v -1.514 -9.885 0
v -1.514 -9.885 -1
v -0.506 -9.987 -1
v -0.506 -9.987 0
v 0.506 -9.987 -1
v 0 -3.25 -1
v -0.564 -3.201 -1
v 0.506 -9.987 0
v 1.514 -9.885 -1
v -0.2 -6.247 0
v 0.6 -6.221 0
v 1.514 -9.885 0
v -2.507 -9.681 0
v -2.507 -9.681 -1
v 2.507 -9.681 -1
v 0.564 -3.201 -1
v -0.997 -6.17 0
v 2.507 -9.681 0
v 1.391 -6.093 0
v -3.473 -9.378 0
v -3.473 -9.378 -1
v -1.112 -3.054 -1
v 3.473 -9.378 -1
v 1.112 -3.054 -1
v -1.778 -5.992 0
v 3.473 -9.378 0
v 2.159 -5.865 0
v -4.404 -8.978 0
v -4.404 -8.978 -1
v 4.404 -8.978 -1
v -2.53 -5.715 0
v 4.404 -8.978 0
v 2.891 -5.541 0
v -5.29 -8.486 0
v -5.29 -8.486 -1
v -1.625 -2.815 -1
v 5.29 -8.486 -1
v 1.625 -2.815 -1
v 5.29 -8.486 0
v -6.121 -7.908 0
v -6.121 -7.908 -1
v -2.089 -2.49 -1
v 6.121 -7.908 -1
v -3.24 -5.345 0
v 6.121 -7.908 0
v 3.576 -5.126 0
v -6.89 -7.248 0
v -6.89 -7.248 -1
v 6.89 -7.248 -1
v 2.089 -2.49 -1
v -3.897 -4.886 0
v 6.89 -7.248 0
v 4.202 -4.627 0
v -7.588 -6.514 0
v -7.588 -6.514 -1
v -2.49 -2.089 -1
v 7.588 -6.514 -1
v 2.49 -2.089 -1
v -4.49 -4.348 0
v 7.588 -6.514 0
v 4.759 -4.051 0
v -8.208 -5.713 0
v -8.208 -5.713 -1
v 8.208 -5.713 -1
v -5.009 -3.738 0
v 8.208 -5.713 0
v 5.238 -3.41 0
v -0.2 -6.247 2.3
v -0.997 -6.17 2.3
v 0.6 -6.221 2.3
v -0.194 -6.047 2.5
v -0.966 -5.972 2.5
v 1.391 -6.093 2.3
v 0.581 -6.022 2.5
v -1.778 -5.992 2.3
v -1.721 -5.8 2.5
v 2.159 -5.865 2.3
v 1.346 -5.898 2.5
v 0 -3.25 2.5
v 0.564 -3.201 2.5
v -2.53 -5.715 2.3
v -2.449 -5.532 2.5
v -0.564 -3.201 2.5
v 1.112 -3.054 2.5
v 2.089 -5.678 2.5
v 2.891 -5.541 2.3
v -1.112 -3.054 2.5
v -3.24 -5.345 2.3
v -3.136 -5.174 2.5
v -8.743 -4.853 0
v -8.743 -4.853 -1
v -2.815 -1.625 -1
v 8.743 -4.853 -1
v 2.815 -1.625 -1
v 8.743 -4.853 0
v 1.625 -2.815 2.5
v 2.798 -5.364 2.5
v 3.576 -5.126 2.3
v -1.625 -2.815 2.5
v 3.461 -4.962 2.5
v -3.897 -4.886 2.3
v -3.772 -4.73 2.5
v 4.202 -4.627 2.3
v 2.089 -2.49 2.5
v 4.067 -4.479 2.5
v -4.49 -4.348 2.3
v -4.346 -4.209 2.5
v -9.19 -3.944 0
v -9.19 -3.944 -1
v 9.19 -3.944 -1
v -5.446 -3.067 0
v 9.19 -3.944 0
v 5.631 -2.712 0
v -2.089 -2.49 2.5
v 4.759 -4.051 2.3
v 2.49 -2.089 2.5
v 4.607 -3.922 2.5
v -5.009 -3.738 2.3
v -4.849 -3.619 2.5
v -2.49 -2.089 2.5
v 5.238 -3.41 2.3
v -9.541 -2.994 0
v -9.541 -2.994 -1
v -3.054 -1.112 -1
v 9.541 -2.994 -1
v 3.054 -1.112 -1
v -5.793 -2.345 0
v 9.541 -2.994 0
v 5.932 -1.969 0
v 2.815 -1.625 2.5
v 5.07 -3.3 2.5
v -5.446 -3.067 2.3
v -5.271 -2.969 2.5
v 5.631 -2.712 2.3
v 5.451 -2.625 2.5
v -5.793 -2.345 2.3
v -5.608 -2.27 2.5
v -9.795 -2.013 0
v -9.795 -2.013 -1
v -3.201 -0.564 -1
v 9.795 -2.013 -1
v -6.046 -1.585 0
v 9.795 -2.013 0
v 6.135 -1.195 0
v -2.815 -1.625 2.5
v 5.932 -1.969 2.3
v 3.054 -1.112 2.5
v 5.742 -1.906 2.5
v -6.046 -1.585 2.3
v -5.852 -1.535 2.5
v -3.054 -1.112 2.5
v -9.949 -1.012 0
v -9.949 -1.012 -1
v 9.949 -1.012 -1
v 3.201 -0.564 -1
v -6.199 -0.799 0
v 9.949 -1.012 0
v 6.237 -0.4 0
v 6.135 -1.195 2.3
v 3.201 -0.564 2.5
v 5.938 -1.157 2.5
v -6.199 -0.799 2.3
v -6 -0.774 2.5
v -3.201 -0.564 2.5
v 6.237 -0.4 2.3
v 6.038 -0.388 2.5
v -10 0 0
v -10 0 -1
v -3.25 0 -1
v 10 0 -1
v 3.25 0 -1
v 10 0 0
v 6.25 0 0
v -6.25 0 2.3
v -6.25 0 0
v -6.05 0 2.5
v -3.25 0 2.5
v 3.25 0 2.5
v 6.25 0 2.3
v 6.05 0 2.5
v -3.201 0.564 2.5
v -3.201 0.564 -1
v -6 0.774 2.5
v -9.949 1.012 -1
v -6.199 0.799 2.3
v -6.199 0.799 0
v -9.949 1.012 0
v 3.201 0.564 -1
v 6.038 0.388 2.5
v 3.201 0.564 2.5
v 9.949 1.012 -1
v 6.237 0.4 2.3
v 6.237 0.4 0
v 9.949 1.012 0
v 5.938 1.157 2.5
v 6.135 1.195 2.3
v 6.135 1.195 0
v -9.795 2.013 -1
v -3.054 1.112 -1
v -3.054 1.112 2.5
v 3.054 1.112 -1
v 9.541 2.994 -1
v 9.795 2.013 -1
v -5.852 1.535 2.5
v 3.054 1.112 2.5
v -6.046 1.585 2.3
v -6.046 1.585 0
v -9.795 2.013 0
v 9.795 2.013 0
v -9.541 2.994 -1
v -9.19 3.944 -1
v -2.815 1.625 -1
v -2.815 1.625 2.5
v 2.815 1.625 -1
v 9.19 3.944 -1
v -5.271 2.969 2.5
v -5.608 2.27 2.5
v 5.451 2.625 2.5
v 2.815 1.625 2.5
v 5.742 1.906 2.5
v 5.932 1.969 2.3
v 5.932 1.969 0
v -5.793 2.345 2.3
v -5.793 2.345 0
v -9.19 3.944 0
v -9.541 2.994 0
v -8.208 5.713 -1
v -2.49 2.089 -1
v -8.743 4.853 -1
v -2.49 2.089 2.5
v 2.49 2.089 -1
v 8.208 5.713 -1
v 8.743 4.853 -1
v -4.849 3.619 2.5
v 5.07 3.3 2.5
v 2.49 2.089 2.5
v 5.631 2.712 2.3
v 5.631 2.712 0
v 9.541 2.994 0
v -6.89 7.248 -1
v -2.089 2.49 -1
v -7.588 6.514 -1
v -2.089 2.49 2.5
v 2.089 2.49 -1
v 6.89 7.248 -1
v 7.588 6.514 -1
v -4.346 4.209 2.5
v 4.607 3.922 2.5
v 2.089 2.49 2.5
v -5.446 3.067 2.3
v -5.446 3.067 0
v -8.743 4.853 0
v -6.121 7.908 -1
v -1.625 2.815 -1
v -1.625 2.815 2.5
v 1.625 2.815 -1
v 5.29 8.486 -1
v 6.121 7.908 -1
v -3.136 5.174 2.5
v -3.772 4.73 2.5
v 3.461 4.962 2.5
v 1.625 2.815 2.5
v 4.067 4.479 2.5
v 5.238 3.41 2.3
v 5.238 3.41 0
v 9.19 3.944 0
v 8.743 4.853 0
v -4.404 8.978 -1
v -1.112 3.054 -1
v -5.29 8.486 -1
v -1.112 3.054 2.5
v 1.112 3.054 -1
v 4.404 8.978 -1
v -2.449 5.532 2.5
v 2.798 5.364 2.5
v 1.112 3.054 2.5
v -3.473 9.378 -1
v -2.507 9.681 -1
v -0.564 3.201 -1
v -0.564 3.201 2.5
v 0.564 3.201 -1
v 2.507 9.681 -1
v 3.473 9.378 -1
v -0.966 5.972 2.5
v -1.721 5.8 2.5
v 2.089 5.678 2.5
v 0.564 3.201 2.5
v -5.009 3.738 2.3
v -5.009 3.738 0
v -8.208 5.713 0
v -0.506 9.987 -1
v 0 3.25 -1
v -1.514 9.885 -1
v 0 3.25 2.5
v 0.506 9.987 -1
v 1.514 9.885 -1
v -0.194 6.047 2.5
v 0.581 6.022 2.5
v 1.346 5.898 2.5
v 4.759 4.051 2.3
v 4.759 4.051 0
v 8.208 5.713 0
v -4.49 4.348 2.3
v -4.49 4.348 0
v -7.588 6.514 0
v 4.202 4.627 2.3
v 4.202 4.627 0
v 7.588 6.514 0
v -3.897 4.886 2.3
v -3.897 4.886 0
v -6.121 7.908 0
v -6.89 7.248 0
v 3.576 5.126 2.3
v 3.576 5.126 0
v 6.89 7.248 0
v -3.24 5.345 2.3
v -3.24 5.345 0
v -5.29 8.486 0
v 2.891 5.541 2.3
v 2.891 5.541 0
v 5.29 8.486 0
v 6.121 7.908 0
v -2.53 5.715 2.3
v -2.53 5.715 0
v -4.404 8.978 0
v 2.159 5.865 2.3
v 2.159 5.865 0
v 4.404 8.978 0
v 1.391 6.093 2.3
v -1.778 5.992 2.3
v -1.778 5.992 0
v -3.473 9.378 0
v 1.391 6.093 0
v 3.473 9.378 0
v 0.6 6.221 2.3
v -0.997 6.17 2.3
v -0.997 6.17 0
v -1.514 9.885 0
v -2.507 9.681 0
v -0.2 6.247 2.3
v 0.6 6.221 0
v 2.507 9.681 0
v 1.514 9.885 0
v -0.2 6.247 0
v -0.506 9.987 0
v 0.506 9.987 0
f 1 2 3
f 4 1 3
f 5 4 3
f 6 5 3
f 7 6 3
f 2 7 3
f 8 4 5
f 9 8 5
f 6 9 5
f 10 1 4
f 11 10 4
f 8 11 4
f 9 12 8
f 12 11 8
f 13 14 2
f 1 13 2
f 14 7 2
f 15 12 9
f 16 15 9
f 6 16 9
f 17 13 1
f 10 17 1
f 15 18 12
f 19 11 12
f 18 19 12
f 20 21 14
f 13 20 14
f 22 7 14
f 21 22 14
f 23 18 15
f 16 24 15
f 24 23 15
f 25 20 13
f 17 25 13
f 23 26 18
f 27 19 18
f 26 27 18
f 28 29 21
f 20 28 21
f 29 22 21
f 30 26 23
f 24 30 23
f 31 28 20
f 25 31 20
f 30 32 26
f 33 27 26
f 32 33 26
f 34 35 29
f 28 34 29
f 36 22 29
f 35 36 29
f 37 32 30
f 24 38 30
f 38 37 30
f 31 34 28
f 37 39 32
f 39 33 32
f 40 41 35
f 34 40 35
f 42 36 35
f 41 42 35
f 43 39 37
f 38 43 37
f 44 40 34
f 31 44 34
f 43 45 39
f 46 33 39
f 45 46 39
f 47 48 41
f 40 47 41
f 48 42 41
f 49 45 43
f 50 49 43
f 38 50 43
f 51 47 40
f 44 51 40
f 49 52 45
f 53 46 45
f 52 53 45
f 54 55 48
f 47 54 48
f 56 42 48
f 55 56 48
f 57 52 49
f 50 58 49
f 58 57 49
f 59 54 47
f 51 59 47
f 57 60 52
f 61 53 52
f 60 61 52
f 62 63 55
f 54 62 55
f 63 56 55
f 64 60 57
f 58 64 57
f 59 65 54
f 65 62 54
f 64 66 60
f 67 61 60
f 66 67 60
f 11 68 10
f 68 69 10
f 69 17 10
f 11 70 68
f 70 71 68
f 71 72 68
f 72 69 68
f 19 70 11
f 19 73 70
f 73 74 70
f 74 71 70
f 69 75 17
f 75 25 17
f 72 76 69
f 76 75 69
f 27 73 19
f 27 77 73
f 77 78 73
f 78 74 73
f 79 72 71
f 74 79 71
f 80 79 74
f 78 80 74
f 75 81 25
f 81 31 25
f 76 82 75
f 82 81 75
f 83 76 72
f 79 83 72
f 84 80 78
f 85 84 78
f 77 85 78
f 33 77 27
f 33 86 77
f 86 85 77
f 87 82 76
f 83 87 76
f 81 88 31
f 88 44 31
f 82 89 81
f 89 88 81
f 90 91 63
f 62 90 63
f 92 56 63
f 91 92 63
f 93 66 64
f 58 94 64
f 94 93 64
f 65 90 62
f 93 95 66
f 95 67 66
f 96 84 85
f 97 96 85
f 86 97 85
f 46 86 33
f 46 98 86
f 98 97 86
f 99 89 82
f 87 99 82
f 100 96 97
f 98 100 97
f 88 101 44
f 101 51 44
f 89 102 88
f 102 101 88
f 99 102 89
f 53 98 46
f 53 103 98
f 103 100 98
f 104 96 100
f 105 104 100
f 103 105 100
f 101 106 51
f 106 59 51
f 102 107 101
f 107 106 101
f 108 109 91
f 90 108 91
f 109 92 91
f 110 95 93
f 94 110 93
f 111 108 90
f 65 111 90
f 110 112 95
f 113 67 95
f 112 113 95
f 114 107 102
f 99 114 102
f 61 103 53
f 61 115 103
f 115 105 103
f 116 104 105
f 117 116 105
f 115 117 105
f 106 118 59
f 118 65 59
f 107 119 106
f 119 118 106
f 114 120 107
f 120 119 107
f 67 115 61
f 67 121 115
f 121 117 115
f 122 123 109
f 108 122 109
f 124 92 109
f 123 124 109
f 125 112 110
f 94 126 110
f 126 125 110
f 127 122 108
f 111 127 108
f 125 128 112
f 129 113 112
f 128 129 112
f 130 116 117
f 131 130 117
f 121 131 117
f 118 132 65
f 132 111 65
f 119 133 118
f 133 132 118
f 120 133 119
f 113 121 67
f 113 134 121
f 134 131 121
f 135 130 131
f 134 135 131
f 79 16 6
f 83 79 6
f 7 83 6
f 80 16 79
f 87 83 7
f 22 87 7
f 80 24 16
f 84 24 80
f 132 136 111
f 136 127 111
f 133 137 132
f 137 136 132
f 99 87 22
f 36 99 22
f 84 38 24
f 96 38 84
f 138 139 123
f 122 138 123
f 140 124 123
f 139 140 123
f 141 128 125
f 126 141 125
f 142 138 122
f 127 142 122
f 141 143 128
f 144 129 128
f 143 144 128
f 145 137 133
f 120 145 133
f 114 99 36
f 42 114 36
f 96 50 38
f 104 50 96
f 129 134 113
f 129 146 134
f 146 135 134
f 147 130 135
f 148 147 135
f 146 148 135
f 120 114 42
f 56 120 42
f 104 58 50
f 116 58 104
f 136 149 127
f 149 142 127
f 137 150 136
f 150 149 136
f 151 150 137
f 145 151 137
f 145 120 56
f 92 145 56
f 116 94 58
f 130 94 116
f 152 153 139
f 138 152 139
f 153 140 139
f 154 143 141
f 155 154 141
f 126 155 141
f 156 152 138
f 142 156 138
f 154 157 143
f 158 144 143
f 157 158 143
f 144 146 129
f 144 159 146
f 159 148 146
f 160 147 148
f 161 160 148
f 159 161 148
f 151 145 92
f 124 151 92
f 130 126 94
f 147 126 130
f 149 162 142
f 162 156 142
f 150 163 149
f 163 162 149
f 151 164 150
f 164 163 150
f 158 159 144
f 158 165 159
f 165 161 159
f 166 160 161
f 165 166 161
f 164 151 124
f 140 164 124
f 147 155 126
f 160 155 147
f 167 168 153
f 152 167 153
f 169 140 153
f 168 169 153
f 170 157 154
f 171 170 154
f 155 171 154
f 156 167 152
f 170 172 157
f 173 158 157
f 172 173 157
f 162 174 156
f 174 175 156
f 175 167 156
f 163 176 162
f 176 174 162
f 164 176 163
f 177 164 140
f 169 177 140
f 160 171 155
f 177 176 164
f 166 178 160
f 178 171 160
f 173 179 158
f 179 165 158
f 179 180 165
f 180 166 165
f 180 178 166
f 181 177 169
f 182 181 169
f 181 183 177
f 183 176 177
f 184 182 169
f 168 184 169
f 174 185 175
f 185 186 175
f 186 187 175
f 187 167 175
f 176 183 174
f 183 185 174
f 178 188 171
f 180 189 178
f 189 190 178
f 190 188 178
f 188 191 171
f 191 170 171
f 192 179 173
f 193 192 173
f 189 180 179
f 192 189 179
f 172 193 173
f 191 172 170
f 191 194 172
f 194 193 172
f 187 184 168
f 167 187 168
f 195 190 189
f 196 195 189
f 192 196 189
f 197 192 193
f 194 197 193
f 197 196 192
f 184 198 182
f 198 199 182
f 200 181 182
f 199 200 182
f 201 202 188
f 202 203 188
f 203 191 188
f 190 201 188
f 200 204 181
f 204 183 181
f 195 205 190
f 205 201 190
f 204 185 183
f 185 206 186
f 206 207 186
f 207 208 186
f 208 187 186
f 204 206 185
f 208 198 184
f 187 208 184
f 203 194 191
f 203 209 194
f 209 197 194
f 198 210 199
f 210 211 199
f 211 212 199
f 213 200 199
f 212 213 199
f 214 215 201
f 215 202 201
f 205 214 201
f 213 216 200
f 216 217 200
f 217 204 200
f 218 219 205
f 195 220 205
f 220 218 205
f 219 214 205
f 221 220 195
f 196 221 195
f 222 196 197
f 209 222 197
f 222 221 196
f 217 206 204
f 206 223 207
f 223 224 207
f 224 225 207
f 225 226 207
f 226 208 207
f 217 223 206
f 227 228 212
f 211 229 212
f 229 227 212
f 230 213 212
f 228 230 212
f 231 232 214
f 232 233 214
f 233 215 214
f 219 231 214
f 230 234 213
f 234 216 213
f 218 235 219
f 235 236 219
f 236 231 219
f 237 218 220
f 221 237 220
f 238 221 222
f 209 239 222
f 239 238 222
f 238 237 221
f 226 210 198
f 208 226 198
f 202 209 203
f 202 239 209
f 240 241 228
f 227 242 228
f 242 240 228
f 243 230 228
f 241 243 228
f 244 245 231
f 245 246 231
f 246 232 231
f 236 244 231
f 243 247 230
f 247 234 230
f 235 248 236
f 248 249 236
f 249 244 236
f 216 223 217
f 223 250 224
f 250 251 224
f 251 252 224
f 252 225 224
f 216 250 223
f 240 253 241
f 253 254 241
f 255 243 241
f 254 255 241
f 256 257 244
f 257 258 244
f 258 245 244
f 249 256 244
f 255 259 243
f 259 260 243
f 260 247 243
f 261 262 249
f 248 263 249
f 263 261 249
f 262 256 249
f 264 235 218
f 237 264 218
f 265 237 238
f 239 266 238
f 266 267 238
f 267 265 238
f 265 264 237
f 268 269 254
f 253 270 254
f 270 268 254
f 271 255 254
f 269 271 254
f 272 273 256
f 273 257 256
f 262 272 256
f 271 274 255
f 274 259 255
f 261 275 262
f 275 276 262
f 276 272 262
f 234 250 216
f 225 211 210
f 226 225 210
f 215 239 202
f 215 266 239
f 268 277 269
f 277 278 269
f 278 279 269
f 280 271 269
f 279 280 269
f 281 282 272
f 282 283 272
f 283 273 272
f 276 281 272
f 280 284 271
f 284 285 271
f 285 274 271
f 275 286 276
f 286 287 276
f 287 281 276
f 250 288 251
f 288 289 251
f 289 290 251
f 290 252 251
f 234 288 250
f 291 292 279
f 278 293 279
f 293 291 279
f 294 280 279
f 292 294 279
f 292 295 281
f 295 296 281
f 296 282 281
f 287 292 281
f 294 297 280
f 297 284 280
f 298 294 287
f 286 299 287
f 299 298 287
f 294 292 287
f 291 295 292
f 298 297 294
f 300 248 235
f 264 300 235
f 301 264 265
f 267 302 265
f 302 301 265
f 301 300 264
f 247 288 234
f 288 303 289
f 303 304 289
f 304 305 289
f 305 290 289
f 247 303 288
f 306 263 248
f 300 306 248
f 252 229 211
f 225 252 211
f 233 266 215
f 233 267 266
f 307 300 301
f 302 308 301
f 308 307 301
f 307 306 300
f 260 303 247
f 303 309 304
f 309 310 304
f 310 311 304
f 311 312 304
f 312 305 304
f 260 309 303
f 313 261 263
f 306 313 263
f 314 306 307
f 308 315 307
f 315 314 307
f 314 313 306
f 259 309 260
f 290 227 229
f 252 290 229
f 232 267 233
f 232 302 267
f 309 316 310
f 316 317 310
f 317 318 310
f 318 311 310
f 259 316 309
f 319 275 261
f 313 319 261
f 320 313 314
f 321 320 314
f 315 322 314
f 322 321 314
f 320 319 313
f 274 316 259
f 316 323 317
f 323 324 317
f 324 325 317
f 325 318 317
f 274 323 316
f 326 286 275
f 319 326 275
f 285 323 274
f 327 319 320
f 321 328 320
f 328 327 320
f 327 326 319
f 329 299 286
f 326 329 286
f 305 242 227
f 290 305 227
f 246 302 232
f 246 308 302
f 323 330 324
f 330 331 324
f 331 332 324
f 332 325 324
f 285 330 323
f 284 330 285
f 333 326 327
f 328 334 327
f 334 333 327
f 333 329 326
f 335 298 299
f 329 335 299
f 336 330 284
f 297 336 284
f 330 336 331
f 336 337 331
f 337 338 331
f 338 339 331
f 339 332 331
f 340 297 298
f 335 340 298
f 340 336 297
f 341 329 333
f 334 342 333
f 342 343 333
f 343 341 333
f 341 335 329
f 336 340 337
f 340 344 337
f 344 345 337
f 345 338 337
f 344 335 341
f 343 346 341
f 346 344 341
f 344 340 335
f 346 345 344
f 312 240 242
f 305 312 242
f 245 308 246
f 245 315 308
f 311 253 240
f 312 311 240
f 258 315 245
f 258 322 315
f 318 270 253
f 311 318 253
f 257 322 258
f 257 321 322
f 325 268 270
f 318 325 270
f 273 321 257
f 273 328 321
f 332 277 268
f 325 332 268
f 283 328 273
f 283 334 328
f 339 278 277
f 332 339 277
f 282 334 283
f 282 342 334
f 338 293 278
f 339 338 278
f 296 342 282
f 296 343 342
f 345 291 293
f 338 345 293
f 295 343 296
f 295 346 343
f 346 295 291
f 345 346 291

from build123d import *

# Parameters (mm, degrees)
ESQUISSE1_R             = 10
BOSS_EXTRU_1_DEPTH      = 1
ESQUISSE2_R             = 6.25
BOSS_EXTRU_2_DEPTH      = 2.5
ESQUISSE3_R             = 3.25
ENL_V_MAT_EXTRU_1_DEPTH = 15.568802284
CHANFREIN1_SIZE         = 0.2


with BuildPart() as part:
    # Esquisse1 → Boss.-Extru.1 (new body)
    with BuildSketch(Plane(origin=(38.31198223, 224.2058109, 0), x_dir=(0.9566700248572155, 0.2911742837884119, 0), z_dir=(0, 0, -1))):
        with Locations(Location((-101.934891402, 203.3355147, 0), (0, 0, 196.92827176))):
            Circle(ESQUISSE1_R)
    extrude(amount=BOSS_EXTRU_1_DEPTH)

    # Esquisse2 → Boss.-Extru.2 (add)
    with BuildSketch(Plane.XY):
        Circle(ESQUISSE2_R)
    extrude(amount=BOSS_EXTRU_2_DEPTH)

    # Esquisse3 → Enlèv. mat.-Extru.1 (cut, through all)
    with BuildSketch(Plane(origin=(0, 0, -1), x_dir=(1, 0, 0), z_dir=(0, 0, -1))):
        with Locations(Location((0, 0, 0), (0, 0, 270))):
            Circle(ESQUISSE3_R)
    extrude(amount=-ENL_V_MAT_EXTRU_1_DEPTH, mode=Mode.SUBTRACT)

    # Chanfrein1
    chanfrein1_edges = [part.edges().sort_by_distance(p)[0] for p in [
        (-6.25, 0, 2.5),
    ]]
    chamfer(chanfrein1_edges, length=CHANFREIN1_SIZE)


solid = part.part
